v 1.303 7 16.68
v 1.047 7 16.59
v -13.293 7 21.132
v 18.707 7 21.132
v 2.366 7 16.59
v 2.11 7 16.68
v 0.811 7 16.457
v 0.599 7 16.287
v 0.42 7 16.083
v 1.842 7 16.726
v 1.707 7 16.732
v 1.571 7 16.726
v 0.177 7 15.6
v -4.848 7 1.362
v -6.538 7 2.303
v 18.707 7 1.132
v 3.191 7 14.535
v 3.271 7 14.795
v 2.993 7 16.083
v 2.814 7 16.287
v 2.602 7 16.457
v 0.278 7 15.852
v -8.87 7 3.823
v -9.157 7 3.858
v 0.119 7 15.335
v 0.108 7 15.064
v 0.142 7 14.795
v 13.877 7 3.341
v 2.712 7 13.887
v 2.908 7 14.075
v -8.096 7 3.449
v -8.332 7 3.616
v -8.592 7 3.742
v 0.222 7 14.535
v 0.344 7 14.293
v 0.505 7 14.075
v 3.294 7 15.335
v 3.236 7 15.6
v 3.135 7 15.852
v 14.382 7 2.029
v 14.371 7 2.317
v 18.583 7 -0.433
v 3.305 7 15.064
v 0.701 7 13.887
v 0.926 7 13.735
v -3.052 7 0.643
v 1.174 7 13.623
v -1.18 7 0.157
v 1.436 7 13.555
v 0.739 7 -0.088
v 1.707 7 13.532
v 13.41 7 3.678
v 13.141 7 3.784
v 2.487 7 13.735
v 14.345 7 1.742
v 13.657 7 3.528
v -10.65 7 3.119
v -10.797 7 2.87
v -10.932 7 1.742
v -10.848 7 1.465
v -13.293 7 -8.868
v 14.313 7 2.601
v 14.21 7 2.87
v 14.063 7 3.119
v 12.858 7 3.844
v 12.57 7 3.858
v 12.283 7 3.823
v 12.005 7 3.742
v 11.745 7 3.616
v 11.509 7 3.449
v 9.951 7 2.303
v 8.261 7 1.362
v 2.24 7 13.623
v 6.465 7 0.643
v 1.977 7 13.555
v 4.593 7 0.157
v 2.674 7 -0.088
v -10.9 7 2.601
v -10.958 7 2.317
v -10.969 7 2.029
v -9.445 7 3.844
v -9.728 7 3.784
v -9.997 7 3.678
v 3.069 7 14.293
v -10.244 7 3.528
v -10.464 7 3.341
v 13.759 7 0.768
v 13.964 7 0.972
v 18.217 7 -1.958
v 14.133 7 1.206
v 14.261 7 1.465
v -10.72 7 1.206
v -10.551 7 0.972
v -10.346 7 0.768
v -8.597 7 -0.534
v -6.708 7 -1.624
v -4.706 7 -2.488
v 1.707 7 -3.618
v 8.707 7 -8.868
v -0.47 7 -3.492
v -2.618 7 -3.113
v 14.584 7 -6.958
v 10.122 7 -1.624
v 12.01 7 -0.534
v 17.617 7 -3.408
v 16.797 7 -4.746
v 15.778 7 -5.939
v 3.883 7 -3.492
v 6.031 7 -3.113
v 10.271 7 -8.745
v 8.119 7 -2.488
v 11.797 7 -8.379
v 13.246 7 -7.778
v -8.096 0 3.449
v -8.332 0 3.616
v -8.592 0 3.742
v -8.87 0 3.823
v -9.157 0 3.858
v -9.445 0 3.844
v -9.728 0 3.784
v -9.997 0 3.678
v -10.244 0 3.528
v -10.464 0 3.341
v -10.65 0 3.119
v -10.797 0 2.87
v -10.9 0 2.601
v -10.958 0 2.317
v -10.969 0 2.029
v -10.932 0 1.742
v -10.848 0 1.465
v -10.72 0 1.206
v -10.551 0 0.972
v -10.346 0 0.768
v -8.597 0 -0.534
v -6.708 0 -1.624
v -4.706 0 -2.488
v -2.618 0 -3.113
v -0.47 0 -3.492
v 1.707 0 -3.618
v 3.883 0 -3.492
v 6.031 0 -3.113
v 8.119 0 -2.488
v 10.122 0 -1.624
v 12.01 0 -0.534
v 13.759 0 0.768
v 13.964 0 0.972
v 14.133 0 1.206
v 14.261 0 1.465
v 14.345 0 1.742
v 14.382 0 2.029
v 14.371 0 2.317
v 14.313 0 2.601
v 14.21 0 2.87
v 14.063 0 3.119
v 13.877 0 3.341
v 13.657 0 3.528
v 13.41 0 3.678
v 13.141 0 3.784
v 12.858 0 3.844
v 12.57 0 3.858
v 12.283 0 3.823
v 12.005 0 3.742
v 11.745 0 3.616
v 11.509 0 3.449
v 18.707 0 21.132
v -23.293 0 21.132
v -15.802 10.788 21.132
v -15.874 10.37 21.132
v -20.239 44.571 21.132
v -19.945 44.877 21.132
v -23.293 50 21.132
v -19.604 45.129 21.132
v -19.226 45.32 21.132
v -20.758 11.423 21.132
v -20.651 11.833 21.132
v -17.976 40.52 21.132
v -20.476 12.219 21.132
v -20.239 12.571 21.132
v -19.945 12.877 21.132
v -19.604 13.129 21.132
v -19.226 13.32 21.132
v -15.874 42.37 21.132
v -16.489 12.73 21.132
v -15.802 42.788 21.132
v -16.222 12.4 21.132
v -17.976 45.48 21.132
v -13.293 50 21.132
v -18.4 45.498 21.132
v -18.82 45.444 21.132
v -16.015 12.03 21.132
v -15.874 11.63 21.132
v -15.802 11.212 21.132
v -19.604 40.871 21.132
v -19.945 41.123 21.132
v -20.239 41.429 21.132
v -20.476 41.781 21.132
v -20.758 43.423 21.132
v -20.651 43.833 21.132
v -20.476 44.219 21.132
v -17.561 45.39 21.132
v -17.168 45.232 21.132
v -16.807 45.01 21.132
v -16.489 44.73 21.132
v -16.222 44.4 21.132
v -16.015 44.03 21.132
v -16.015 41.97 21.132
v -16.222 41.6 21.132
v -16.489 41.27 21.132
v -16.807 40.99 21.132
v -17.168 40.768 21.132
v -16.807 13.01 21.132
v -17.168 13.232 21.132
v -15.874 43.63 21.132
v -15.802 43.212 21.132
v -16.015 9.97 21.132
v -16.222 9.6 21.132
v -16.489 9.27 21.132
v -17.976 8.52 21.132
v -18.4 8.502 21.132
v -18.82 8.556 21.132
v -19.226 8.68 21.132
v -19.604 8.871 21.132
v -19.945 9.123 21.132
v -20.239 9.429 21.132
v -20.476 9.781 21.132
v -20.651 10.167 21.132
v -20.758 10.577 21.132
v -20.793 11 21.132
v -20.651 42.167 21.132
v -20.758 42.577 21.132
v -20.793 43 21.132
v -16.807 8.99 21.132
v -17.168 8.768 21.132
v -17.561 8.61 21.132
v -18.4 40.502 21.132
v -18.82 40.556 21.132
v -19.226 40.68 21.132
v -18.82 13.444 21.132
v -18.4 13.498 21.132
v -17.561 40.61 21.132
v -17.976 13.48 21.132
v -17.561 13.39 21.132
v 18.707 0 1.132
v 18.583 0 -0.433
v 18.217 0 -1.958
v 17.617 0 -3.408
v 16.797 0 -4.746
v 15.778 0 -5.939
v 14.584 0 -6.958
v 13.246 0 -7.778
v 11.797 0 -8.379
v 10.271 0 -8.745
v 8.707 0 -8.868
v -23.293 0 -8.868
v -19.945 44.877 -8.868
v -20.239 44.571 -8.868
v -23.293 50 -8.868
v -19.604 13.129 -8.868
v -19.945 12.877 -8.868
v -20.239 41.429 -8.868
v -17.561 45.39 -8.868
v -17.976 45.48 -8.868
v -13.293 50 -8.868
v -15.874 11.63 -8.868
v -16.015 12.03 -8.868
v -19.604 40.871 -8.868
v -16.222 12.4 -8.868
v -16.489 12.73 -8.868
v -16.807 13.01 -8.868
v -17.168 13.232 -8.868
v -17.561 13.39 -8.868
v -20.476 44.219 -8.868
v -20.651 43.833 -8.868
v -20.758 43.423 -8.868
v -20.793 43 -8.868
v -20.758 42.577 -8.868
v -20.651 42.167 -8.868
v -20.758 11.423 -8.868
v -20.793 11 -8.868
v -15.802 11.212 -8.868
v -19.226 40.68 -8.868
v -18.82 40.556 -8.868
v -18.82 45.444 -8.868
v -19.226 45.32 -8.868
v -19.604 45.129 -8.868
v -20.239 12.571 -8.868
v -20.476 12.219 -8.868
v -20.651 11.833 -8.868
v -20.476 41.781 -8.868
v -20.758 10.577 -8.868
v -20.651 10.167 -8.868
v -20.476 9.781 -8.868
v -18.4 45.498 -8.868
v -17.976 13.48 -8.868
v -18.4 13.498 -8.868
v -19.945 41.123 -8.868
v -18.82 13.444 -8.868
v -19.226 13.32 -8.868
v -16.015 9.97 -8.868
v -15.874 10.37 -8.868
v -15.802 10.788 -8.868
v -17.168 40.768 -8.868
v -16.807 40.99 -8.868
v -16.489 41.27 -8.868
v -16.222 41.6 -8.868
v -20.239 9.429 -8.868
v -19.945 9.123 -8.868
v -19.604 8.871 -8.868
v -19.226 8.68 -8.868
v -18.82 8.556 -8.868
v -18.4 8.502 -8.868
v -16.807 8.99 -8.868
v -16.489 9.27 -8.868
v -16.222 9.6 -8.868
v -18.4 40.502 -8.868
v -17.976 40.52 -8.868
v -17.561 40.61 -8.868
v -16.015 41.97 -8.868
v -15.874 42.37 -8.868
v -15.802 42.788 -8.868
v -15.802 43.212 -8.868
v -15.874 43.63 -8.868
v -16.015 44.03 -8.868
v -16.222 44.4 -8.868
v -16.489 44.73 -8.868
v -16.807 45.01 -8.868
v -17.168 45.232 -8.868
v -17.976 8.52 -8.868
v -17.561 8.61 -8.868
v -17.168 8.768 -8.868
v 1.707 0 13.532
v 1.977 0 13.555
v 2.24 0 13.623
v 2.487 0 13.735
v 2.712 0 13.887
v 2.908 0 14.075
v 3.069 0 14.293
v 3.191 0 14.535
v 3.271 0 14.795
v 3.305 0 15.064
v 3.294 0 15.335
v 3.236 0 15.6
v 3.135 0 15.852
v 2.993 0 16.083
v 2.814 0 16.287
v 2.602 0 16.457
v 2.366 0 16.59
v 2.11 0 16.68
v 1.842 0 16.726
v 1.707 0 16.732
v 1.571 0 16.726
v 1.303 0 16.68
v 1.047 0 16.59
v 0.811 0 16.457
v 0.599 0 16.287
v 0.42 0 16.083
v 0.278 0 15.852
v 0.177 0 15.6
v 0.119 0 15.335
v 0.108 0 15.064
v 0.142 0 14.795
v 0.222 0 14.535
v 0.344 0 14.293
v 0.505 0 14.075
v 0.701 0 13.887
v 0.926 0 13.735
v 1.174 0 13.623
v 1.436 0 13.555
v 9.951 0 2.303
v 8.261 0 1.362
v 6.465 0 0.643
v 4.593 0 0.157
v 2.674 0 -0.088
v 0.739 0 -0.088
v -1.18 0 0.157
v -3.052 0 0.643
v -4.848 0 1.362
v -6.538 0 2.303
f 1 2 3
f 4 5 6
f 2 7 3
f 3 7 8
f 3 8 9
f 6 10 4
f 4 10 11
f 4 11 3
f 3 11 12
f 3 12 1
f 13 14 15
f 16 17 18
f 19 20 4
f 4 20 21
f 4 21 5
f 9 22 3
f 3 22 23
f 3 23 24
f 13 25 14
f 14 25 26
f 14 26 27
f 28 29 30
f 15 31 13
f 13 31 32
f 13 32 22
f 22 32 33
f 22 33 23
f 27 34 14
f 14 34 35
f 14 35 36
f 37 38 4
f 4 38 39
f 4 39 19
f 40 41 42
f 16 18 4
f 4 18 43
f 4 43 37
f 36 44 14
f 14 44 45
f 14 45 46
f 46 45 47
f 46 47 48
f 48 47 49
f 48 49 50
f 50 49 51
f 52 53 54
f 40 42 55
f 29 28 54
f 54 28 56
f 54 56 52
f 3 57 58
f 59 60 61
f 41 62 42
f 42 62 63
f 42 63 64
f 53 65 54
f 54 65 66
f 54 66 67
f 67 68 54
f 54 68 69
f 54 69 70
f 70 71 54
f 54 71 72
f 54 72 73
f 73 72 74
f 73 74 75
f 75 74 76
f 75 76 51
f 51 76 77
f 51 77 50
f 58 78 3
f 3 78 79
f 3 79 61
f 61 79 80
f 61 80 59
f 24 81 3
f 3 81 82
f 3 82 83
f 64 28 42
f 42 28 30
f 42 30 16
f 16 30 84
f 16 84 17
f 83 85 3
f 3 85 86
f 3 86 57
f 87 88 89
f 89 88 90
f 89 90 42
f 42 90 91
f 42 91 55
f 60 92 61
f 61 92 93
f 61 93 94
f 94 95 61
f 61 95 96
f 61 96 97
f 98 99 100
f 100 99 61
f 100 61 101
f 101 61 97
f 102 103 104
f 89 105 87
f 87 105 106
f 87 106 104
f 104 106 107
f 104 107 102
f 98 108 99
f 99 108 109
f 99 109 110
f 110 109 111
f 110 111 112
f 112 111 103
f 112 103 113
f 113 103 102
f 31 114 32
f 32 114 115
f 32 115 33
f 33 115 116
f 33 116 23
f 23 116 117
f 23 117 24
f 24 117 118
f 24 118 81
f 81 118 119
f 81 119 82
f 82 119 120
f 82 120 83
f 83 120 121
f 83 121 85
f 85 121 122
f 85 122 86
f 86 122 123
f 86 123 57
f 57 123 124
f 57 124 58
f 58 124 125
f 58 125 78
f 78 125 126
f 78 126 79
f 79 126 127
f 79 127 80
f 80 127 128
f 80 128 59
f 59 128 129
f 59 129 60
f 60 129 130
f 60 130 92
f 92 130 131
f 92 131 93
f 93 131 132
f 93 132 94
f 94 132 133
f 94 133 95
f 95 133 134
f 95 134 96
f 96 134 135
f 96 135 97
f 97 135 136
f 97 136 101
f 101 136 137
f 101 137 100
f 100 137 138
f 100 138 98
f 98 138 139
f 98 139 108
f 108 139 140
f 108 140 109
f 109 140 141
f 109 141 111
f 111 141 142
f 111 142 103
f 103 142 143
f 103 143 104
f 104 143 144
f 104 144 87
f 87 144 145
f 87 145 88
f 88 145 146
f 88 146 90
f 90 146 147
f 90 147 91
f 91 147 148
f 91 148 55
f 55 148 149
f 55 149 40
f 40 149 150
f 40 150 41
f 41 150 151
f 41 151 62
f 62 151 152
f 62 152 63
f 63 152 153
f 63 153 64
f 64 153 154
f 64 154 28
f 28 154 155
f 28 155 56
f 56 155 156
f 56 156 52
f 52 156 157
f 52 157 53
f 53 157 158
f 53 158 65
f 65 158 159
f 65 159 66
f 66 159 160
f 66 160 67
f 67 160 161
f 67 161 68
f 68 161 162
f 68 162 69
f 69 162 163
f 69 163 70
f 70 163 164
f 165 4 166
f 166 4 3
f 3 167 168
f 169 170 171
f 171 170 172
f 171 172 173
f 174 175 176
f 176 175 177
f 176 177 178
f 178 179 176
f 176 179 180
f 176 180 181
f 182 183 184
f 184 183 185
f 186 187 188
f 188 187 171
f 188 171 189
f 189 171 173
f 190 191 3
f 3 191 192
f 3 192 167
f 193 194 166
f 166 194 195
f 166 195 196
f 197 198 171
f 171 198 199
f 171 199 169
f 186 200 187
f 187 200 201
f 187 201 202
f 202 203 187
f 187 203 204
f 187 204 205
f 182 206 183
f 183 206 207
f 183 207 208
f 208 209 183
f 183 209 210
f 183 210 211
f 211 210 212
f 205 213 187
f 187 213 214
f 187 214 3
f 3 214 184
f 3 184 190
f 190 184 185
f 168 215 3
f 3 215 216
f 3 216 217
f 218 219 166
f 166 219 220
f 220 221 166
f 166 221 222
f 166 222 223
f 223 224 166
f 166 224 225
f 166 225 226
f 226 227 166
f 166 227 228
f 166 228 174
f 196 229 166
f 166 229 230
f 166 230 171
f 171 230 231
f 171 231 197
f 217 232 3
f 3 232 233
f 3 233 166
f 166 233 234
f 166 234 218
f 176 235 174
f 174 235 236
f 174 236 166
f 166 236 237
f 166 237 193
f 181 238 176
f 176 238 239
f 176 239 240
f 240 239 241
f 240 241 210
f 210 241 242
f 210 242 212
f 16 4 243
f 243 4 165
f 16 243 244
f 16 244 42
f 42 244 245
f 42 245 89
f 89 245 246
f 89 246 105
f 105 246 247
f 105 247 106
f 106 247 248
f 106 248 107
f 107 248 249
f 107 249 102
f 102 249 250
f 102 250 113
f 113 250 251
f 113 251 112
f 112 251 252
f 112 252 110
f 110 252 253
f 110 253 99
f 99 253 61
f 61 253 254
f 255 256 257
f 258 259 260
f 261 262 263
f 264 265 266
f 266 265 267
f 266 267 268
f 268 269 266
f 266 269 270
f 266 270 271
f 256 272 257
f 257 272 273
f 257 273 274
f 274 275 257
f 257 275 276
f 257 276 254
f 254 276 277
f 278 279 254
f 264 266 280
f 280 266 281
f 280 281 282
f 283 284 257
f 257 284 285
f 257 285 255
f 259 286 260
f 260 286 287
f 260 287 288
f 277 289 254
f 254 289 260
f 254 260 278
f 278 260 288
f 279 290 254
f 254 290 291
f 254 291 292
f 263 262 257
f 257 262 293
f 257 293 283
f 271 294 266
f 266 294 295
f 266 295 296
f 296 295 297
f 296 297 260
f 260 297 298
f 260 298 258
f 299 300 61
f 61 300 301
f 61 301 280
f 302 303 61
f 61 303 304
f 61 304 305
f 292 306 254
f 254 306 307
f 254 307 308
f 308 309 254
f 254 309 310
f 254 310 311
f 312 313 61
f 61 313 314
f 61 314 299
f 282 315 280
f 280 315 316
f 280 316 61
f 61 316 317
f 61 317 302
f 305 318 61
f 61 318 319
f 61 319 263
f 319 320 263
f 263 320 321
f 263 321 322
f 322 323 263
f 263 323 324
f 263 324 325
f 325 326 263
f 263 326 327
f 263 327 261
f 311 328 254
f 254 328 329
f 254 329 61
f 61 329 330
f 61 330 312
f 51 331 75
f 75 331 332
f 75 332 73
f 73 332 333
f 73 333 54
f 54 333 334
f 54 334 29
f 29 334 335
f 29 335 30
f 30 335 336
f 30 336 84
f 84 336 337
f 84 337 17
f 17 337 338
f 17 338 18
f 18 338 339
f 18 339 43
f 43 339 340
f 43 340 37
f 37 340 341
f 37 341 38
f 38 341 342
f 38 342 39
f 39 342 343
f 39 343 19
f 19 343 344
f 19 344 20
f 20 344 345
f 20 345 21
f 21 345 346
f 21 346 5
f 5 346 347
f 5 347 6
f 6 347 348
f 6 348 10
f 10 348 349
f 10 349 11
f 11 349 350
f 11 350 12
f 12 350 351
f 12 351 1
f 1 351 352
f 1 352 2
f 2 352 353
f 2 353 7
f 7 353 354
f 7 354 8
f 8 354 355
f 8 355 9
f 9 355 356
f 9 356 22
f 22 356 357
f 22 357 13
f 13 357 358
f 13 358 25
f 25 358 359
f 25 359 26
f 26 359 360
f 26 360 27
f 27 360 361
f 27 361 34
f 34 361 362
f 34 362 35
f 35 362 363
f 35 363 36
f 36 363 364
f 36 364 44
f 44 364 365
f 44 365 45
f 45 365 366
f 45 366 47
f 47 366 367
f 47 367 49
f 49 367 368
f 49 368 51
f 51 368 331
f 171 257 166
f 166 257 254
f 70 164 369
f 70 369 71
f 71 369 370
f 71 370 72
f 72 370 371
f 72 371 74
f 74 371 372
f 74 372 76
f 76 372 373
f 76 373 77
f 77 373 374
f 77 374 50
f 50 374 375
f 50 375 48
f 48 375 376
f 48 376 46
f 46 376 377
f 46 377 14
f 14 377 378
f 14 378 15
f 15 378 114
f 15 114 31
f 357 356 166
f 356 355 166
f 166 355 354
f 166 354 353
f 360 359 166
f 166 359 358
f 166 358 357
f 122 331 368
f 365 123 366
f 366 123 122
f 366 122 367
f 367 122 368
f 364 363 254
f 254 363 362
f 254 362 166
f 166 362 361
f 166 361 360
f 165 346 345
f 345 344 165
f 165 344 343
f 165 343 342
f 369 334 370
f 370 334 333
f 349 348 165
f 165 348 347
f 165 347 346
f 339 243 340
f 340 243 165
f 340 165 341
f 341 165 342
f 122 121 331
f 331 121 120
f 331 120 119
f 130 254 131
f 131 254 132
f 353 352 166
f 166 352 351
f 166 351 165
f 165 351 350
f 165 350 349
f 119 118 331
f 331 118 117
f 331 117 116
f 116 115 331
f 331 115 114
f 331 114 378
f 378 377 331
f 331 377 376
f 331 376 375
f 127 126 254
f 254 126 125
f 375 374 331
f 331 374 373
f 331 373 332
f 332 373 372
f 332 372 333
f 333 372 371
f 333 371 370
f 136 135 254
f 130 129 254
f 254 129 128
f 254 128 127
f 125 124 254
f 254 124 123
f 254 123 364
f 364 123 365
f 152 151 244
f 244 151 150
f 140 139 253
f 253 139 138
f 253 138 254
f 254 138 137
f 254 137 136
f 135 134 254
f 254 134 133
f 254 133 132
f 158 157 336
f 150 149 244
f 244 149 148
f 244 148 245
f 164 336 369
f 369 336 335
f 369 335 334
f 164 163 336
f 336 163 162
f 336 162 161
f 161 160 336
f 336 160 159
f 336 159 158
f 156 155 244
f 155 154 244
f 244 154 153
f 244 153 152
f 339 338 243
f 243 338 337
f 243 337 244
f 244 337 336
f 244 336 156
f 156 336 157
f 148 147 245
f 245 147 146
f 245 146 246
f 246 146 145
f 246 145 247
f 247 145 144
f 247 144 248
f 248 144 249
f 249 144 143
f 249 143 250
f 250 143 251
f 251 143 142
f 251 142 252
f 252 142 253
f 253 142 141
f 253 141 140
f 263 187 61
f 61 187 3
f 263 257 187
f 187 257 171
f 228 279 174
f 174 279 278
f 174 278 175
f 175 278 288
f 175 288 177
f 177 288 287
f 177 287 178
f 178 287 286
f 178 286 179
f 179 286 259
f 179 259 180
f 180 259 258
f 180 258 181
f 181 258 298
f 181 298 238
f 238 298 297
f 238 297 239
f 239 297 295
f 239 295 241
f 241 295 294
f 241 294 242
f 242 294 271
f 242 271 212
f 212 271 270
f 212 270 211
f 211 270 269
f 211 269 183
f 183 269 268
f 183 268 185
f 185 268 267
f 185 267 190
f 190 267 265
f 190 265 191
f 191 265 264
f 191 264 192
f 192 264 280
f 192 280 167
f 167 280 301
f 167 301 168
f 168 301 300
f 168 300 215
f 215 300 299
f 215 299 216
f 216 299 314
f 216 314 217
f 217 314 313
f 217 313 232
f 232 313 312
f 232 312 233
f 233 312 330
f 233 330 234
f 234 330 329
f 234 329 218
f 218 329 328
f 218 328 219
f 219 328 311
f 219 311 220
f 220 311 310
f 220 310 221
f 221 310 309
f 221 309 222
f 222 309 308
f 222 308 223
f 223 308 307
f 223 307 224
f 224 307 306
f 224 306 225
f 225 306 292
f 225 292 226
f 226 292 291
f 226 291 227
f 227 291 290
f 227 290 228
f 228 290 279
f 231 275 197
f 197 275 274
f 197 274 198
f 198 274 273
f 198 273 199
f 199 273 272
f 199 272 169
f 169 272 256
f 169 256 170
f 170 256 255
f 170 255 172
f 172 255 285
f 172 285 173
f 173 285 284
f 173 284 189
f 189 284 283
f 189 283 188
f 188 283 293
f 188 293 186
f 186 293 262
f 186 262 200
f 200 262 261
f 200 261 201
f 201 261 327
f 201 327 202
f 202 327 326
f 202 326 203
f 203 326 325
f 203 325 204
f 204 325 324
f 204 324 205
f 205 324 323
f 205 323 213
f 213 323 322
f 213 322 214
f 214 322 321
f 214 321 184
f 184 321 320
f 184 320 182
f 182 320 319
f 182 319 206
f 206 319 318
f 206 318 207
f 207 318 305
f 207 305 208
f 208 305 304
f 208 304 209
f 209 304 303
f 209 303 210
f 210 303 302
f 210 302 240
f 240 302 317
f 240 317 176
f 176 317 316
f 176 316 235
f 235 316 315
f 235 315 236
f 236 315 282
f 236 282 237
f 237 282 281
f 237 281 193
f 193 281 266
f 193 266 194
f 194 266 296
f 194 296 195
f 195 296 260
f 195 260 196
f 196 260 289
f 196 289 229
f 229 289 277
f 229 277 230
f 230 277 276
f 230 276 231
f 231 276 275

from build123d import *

# Parameters (mm, degrees)
SKETCH1_R           = 1.6
BOSS_EXTRUDE1_DEPTH = 7
SKETCH1_3_W         = 10
SKETCH1_3_H         = 30
BOSS_EXTRUDE2_DEPTH = 50
SKETCH2_R           = 2.5
CUT_EXTRUDE1_DEPTH  = 63.790013573


with BuildPart() as part:
    # Sketch1 → Boss-Extrude1 (new body)
    with BuildSketch(Plane(origin=(0, 0, 0), x_dir=(1, 0, 0), z_dir=(0, 1, 0))):
        with BuildLine():
            Line((-23.293471286, 8.868329827), (-23.293471286, -21.131670173))
            Line((-23.293471286, -21.131670173), (18.706528714, -21.131670173))
            Line((18.706528714, -21.131670173), (18.706528714, -1.131670173))
            ThreePointArc((18.706528714, -1.131670173), (15.777596526, 5.939397639), (8.706528714, 8.868329827))
            Line((8.706528714, 8.868329827), (-23.293471286, 8.868329827))
        make_face()
        with BuildLine():
            ThreePointArc((13.758796396, -0.768336864), (13.974495854, -3.233792957), (11.509039762, -3.449492415))
            ThreePointArc((11.509039762, -3.449492415), (1.706528714, 0.118329827), (-8.095982334, -3.449492415))
            ThreePointArc((-8.095982334, -3.449492415), (-10.561438426, -3.233792957), (-10.345738968, -0.768336864))
            ThreePointArc((-10.345738968, -0.768336864), (1.706528714, 3.618329827), (13.758796396, -0.768336864))
        make_face(mode=Mode.SUBTRACT)
        with Locations((1.706528714, -15.131670173)):
            Circle(SKETCH1_R, mode=Mode.SUBTRACT)
    extrude(amount=BOSS_EXTRUDE1_DEPTH)

    # Sketch1<3> → Boss-Extrude2 (add)
    with BuildSketch(Plane(origin=(0, 0, 0), x_dir=(1, 0, 0), z_dir=(0, 1, 0))):
        with Locations((-18.293471286, -6.131670173)):
            Rectangle(SKETCH1_3_W, SKETCH1_3_H)
    extrude(amount=BOSS_EXTRUDE2_DEPTH)

    # Sketch2 → Cut-Extrude1 (cut, through all)
    with BuildSketch(Plane(origin=(0, 0, -8.868329827), x_dir=(-1, 0, 0), z_dir=(0, 0, -1))):
        with Locations((18.293471286, 43)):
            Circle(SKETCH2_R)
        with Locations((18.293471286, 11)):
            Circle(SKETCH2_R)
    extrude(amount=-CUT_EXTRUDE1_DEPTH, mode=Mode.SUBTRACT)


solid = part.part
